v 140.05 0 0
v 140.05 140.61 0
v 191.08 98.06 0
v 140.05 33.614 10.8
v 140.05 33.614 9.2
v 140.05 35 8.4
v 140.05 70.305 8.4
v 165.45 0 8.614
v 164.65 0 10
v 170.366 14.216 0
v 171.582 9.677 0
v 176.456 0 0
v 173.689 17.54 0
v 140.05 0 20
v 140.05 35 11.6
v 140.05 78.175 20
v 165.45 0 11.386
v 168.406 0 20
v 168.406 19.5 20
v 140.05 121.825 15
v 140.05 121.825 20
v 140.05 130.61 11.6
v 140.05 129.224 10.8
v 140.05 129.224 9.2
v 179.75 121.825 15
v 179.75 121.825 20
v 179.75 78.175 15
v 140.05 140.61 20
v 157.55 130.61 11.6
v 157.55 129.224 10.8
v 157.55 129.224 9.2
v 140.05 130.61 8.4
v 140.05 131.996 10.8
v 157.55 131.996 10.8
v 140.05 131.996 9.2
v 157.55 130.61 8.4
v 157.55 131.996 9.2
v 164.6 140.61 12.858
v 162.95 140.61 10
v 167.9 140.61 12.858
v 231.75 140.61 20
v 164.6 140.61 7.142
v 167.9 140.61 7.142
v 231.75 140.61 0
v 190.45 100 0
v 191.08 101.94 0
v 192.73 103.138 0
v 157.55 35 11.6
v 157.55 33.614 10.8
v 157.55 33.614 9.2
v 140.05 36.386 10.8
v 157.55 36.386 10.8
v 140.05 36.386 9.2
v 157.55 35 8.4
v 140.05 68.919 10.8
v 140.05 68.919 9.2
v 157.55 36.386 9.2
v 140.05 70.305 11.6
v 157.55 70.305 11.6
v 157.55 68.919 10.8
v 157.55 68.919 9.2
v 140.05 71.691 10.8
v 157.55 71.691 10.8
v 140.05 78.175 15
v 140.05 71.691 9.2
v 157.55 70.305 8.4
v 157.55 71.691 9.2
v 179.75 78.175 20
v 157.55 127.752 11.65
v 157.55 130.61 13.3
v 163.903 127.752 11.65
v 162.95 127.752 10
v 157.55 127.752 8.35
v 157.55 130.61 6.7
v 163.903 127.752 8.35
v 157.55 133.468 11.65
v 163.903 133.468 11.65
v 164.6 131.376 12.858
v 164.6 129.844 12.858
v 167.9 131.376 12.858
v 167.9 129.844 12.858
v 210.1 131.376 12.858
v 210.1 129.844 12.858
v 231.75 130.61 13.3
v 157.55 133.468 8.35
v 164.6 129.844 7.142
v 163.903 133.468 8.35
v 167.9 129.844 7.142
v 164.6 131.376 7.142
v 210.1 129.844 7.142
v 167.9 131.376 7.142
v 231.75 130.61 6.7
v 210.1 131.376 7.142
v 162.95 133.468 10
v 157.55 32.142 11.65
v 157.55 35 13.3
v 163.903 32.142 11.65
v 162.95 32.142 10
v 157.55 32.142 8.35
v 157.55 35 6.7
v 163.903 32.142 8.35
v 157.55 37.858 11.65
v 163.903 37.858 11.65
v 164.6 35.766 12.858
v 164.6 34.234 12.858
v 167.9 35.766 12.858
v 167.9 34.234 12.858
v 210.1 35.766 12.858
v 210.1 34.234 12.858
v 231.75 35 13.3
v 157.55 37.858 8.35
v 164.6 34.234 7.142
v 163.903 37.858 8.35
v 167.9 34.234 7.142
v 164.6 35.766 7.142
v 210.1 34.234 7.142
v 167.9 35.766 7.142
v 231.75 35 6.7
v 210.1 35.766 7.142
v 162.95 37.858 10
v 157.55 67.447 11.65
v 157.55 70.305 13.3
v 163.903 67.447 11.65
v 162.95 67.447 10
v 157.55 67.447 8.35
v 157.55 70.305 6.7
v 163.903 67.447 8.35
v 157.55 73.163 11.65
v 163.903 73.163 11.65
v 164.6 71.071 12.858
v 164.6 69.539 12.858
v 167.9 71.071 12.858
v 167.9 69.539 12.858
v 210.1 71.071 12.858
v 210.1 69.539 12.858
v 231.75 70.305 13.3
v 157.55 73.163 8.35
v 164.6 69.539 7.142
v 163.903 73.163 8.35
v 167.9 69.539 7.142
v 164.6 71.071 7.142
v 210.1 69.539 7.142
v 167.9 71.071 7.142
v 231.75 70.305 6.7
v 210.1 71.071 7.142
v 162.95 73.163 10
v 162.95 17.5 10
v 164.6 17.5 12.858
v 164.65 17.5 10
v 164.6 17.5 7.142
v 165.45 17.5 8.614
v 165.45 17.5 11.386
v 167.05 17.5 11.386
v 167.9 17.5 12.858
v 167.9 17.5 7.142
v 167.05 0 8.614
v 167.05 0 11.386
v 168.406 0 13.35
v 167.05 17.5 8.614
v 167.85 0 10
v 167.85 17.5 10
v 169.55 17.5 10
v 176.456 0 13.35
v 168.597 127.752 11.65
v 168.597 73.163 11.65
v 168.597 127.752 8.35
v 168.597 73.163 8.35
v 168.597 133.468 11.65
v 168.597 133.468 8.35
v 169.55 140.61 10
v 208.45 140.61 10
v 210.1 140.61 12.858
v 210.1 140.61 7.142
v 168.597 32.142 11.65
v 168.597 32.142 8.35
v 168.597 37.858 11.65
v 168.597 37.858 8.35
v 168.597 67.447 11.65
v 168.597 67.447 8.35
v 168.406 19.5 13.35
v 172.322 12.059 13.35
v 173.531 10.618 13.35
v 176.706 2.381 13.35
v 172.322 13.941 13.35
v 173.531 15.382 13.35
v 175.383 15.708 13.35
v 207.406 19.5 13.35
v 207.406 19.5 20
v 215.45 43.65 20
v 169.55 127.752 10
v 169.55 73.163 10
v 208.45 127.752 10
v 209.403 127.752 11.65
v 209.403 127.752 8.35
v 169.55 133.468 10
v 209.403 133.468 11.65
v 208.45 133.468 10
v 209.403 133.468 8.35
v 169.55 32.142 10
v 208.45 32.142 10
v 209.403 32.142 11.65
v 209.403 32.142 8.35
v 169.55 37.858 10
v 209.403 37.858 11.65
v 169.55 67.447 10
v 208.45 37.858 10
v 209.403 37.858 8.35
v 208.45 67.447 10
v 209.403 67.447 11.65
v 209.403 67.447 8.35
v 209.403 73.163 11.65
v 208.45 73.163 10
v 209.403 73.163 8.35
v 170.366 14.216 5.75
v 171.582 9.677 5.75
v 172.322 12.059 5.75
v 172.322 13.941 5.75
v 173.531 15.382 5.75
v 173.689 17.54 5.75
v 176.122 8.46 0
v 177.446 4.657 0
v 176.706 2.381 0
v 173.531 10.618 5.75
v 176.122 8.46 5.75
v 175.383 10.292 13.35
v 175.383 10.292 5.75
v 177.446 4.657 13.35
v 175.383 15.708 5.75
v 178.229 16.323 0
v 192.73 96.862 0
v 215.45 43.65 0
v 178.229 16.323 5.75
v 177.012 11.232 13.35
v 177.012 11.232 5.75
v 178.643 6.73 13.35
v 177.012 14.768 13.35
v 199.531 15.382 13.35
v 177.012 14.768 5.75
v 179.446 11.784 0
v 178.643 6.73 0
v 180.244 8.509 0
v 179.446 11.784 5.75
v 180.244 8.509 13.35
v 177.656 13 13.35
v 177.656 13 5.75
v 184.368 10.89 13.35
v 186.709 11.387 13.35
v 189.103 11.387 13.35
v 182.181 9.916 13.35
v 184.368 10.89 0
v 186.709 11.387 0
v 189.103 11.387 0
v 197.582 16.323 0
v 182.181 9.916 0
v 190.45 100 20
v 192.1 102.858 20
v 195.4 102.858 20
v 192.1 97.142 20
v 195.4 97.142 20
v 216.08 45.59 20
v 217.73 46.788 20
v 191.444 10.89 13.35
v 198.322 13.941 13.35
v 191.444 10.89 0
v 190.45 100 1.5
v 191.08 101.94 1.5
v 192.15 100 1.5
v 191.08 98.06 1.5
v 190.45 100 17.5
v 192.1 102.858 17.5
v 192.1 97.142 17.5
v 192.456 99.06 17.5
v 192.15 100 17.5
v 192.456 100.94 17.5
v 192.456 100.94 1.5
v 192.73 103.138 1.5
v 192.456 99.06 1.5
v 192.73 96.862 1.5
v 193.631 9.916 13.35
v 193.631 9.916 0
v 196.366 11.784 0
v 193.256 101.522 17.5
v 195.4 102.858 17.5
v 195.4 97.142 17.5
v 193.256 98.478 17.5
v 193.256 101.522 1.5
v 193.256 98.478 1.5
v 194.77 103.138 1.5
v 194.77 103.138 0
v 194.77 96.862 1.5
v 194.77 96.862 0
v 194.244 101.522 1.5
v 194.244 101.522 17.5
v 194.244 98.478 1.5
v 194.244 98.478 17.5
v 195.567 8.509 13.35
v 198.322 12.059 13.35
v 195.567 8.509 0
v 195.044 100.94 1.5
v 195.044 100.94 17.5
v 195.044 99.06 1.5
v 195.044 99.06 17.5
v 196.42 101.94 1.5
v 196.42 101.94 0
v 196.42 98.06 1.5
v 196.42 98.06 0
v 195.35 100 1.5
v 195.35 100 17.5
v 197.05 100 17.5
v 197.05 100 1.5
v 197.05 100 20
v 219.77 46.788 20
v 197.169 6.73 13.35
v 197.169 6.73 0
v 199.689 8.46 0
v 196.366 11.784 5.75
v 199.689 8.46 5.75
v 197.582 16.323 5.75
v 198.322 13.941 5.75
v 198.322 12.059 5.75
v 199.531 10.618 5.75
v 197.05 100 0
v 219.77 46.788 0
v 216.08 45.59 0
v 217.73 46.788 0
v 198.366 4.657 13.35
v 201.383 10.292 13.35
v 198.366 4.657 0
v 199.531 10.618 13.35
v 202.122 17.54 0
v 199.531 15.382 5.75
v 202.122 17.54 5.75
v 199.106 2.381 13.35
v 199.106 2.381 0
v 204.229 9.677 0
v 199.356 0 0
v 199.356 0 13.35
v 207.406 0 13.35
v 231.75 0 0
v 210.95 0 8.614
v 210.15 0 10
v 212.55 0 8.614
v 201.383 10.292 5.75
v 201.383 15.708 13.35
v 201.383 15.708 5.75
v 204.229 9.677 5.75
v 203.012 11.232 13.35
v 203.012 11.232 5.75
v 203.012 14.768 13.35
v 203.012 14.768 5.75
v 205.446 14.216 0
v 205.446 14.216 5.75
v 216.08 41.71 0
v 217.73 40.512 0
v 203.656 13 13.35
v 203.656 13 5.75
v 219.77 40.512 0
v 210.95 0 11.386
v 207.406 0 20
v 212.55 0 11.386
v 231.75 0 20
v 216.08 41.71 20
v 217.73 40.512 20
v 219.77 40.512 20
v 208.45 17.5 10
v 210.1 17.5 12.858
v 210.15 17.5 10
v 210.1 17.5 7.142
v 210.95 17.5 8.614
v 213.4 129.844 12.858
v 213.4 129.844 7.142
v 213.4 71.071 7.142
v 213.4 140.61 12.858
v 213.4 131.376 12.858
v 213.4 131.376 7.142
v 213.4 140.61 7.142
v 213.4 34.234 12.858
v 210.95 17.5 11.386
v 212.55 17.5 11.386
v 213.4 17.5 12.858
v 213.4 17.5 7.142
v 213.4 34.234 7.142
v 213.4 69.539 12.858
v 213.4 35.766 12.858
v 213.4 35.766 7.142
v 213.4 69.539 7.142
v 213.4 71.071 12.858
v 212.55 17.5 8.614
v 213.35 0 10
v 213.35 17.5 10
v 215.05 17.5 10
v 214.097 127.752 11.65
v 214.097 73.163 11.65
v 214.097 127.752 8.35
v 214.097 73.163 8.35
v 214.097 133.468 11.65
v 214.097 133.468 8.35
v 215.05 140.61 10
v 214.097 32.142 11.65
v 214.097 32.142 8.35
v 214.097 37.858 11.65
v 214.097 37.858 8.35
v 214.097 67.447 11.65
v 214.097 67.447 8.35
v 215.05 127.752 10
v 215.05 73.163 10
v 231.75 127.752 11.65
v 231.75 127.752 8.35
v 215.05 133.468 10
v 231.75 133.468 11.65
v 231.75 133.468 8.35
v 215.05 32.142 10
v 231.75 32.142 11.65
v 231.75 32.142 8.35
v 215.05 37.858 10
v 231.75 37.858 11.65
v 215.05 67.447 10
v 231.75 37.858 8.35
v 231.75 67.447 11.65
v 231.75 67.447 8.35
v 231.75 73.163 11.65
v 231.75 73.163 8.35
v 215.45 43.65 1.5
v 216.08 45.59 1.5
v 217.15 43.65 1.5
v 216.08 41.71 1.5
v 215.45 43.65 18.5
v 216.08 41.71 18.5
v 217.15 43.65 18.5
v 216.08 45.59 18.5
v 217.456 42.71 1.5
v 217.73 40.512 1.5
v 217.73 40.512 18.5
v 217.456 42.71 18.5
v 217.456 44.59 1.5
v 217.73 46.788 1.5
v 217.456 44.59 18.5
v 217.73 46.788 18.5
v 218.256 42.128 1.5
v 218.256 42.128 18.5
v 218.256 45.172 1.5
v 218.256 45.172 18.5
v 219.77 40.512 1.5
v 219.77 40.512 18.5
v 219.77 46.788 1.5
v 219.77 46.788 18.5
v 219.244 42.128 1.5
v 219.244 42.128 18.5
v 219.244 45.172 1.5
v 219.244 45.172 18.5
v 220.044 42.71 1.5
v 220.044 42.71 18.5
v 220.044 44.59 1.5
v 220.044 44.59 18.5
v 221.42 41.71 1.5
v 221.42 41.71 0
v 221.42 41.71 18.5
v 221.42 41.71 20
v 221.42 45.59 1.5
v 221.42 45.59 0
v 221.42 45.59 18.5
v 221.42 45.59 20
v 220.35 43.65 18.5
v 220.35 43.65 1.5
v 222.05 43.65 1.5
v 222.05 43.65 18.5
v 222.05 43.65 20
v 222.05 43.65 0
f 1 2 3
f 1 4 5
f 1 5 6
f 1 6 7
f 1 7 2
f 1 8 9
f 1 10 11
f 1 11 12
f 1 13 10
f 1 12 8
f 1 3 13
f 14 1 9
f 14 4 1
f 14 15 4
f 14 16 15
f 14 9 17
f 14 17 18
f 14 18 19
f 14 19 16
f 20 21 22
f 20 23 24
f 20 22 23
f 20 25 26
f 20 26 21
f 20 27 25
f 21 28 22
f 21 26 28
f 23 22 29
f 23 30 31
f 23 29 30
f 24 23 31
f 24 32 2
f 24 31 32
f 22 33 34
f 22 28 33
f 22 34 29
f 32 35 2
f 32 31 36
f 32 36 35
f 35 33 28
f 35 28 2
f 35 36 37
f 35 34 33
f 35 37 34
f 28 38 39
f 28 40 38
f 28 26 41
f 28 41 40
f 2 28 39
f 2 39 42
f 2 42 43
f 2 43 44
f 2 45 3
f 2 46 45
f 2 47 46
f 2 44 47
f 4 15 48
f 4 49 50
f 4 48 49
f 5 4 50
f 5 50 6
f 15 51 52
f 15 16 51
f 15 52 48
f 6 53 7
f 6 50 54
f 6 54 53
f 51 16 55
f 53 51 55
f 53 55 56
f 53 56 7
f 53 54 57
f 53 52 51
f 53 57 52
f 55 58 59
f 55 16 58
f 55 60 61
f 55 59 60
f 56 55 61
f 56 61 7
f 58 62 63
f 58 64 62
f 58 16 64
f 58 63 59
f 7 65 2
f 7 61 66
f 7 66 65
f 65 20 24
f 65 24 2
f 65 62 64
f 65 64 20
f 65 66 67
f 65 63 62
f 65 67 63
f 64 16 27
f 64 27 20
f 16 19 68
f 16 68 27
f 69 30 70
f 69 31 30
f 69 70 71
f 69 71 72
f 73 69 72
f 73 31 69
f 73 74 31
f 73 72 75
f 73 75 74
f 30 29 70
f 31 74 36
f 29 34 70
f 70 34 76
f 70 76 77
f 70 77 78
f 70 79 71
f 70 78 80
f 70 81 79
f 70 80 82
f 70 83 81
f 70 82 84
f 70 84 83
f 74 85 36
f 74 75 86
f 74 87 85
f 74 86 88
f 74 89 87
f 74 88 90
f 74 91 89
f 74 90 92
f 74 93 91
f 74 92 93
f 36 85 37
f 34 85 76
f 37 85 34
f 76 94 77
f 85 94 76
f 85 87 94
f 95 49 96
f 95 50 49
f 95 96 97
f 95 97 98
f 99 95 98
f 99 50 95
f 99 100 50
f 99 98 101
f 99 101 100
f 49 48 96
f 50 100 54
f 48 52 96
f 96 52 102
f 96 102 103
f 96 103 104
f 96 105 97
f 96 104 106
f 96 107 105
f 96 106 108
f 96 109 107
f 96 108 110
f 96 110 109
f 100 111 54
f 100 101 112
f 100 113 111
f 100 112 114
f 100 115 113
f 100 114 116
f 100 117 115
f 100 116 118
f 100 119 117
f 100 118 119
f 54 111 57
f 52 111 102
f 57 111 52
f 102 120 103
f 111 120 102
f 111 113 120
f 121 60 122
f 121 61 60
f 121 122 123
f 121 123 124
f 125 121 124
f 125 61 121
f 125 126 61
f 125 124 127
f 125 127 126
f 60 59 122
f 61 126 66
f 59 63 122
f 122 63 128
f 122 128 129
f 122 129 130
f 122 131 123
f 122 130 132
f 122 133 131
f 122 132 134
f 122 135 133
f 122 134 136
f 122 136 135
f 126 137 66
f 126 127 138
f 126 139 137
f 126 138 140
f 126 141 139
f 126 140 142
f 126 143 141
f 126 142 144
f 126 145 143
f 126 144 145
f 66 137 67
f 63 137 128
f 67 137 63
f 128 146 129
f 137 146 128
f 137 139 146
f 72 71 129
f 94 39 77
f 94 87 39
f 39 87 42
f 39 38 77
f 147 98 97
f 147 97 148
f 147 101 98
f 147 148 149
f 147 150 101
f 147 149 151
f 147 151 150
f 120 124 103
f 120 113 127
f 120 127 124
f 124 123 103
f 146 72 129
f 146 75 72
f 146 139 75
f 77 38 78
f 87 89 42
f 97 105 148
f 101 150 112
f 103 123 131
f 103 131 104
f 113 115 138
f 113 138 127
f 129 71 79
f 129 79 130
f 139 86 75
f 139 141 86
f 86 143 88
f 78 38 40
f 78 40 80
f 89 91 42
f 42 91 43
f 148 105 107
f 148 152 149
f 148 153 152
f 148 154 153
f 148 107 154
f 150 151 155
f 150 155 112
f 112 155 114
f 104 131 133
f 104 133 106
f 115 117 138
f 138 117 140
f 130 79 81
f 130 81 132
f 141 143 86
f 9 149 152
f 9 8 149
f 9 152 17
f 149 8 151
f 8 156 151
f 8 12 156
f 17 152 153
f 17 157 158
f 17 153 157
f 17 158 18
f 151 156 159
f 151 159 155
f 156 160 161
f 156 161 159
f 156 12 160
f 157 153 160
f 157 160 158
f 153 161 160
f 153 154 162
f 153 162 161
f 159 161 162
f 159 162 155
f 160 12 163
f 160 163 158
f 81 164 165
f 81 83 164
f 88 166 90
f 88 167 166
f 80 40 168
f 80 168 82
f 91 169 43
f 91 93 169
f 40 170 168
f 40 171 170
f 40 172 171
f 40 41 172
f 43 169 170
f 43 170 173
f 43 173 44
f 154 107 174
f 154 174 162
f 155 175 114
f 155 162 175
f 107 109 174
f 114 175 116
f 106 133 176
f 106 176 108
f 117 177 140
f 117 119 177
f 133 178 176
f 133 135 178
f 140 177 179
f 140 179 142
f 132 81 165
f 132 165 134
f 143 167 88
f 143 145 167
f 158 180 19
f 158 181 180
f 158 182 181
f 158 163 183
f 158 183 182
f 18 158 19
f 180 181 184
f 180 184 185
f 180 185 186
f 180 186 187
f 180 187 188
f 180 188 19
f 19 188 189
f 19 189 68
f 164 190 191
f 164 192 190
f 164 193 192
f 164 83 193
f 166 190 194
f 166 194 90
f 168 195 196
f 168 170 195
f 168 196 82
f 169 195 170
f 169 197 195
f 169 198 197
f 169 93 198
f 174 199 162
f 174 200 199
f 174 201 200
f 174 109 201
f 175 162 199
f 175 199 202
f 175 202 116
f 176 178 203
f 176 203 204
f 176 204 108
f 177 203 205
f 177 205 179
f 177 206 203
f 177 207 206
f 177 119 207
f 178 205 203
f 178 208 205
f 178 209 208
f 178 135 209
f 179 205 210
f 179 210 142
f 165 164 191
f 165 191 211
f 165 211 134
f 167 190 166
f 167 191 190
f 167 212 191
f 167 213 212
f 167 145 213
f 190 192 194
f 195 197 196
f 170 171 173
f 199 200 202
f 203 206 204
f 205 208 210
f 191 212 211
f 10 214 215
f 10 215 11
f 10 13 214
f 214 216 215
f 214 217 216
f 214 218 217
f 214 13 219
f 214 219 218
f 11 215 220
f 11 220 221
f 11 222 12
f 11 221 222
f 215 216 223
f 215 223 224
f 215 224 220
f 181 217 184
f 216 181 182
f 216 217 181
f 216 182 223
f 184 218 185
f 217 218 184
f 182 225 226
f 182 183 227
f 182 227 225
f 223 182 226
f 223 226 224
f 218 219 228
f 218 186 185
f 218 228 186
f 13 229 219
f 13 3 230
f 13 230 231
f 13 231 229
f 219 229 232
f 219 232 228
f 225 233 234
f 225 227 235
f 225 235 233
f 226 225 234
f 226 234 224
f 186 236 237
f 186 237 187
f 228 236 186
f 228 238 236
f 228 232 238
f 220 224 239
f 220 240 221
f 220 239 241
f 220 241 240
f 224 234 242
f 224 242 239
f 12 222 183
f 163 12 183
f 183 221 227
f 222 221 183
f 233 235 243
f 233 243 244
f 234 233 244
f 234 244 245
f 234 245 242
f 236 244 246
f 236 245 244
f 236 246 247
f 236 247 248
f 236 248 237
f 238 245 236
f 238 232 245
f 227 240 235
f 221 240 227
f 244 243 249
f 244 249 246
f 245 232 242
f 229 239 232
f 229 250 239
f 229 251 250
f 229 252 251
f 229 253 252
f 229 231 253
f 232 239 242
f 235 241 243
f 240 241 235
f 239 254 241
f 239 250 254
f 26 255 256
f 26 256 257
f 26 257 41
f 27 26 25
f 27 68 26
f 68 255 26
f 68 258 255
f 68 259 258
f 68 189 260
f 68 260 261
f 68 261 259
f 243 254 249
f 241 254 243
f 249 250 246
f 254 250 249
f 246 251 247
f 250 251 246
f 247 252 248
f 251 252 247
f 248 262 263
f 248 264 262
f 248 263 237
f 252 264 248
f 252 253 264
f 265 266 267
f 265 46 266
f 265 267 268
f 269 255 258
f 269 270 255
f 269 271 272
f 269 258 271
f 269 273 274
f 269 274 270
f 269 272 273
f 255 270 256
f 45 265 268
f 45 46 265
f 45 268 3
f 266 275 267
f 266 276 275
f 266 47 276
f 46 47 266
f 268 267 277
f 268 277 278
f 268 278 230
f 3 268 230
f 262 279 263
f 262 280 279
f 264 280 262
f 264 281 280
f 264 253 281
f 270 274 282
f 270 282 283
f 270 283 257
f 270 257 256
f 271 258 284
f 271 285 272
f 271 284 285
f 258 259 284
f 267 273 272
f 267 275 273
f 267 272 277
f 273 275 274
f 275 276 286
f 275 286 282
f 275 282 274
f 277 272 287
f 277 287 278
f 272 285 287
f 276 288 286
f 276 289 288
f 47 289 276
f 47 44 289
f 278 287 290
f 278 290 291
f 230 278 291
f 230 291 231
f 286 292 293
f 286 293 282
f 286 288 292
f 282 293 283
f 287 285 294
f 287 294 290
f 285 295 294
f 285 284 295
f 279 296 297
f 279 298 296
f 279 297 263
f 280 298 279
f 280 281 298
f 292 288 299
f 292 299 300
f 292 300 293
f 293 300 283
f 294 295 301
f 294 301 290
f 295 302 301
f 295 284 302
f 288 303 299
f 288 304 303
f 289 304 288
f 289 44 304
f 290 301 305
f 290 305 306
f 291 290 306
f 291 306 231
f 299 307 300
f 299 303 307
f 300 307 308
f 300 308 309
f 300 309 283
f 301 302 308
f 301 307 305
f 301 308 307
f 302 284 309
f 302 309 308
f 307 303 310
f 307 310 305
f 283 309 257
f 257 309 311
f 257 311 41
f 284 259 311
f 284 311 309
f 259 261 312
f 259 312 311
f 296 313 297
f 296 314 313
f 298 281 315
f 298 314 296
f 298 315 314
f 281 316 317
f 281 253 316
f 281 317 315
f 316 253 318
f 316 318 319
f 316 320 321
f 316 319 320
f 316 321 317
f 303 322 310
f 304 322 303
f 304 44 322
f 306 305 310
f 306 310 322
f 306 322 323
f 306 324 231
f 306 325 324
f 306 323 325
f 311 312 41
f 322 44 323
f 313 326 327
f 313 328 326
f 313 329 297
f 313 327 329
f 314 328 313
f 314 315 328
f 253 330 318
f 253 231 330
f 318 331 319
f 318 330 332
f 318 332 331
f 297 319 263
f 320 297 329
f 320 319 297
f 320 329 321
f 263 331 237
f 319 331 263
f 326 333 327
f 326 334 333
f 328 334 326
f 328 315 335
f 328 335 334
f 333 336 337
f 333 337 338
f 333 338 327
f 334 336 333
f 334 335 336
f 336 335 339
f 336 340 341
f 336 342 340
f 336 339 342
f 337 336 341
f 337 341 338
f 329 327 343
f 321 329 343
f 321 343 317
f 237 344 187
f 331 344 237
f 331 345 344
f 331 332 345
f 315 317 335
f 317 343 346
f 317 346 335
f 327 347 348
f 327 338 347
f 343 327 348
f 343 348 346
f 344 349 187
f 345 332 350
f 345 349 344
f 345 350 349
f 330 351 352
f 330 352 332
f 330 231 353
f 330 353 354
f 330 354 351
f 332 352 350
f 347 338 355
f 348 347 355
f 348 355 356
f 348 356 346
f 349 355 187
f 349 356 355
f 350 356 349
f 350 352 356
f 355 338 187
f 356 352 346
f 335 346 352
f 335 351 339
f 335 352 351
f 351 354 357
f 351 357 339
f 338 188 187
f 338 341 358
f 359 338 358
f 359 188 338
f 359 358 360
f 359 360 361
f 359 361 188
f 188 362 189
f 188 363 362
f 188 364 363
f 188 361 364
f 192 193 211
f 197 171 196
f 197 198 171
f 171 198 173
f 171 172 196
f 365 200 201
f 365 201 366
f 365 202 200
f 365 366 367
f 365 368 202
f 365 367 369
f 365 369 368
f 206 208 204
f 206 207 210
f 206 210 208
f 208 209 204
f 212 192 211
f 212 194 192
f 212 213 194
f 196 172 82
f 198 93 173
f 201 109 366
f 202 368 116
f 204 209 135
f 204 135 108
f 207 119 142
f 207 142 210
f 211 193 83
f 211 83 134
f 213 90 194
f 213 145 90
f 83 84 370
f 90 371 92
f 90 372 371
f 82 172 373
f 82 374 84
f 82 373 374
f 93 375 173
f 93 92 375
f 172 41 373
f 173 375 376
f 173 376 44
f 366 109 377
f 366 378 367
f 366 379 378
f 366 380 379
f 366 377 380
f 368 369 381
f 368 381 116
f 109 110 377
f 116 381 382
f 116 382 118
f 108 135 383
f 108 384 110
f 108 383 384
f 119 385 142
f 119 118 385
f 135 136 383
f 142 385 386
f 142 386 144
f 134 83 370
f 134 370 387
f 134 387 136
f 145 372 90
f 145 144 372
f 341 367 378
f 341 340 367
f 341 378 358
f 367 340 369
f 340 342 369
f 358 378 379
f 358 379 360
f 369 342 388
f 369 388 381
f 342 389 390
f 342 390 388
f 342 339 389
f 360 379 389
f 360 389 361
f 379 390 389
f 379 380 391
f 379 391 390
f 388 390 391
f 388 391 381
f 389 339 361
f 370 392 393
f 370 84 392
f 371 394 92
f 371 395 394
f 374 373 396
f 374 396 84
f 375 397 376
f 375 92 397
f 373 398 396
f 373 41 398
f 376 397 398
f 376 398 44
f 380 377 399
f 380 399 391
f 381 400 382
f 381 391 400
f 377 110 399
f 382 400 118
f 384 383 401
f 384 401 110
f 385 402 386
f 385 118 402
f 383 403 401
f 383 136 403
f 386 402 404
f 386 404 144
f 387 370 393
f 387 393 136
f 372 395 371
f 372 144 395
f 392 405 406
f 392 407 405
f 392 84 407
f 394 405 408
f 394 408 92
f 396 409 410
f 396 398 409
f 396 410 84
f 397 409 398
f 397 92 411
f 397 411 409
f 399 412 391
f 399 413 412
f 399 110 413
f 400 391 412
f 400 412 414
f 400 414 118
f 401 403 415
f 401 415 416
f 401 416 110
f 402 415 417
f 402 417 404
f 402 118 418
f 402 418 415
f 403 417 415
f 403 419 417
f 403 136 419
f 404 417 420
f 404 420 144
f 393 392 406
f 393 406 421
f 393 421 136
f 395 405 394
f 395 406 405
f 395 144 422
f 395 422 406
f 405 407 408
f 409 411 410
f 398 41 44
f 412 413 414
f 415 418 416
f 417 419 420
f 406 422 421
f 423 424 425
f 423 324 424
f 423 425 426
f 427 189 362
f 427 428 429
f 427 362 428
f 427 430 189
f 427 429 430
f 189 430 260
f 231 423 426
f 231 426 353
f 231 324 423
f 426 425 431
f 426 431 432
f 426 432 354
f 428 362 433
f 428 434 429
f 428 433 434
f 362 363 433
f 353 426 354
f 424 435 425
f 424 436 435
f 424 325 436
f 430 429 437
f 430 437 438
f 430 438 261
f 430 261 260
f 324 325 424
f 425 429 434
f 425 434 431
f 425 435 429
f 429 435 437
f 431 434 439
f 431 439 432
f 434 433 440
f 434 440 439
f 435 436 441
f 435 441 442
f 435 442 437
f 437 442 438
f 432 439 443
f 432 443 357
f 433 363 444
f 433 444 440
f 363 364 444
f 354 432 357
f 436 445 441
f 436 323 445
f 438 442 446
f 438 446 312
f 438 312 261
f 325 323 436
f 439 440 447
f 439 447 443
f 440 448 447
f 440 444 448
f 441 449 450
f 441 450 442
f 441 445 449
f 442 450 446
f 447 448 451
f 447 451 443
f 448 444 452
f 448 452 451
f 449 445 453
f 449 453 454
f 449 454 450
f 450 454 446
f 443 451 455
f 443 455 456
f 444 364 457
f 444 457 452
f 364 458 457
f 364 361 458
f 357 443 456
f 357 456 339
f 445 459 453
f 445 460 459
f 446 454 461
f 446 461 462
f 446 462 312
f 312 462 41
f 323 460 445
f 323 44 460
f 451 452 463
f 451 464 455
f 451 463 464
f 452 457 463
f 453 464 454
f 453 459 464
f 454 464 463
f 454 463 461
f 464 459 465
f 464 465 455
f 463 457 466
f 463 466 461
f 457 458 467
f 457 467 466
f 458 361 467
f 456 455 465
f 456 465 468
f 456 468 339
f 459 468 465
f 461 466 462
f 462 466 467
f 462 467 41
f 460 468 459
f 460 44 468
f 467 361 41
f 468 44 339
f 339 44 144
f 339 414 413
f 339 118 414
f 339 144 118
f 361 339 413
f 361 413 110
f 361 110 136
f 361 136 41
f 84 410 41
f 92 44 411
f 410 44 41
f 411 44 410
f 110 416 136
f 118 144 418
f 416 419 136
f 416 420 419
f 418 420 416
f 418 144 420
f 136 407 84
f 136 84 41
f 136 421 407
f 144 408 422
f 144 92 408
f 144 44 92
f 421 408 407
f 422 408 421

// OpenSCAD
// file: ../888_1018.scad
include <../parameters.scad>
draft = true;

accumulator_plate_thickness = 20;
accumulator_plate_length = width_of_accumulator + accumulator_holder_width*3;
accumulator_plate_accumulator_axis_offset = 100; // how far from autogyro center pipe center of battery is.
accumulator_plate_move = -25; // posuv akumulatoru dozadu
accumulator_plate_width = accumulator_plate_accumulator_axis_offset + depth_of_accumulator;
accumulator_plate_bearing_sink = 6.4; // Jak moc bude zapuštěno ložisko pro připevnění na střechu auta.
//  cover_pilon_position
module 888_1018(draft){
  posun = move_of_accumulator + accumulator_holder_width/2 + accumulator_holder_thickness/2 + height_666_1026 + global_clearance/2;

rotate([0, 180, 180])
  translate([posun, 0, 0])
    difference(){

      hull(){
        translate([-accumulator_plate_length/2, -accumulator_plate_width, 0])
            cube([accumulator_plate_length, accumulator_plate_width, accumulator_plate_thickness]);
        translate([-accumulator_plate_length/2 + accumulator_plate_move, -accumulator_plate_width, 0])
            cube([accumulator_plate_length, accumulator_plate_width, accumulator_plate_thickness]);
      }

      #union (){
      //šrouby pro připevnění k letadlu
          translate([-width_of_accumulator/2 - accumulator_holder_width/2 - accumulator_holder_thickness/2, -height_of_accumulator, 0])
              cylinder(h = 100, r = M3_screw_diameter/2, $fn = draft ? 10 : 20, center = true);

          translate([width_of_accumulator/2 + accumulator_holder_width/2 + accumulator_holder_thickness/2, -height_of_accumulator, 0])
              cylinder(h = 100, r = M3_screw_diameter/2, $fn = draft ? 10 : 20, center = true);

      //Zapuštění hlav šroubů pro připevnění k letadlu
          translate([-width_of_accumulator/2 - accumulator_holder_width/2 - accumulator_holder_thickness/2, -height_of_accumulator, accumulator_plate_thickness])
              cylinder(h = M3_screw_head_height, d = M3_nut_diameter, $fn = draft ? 10 : 20, center = true);

          translate([width_of_accumulator/2 + accumulator_holder_width/2 + accumulator_holder_thickness/2, -height_of_accumulator, accumulator_plate_thickness])
              cylinder(h = M3_screw_head_height, d = M3_nut_diameter, $fn = draft ? 10 : 20, center = true);

      // odecteni kostky, v miste, kde je pripevnene kolecko
          translate([height_666_1026 - move_of_accumulator - width_of_accumulator/2 - 5, -5 - height_666_1004/2, - hull_y_size/2])
                 cube([coupling_width_666_1004 + 10, height_666_1004 + 10, hull_y_size]);
      }

      translate([accumulator_plate_move, 0, 0])
      union (){
        //akumulátor
          translate([-width_of_accumulator/2, -accumulator_plate_accumulator_axis_offset-height_of_accumulator/2, accumulator_plate_thickness - sink_of_accumulator])
              cube([width_of_accumulator, height_of_accumulator, depth_of_accumulator]);

        //šrouby pro připevnění akumulátorů
          translate([width_of_accumulator/2 + accumulator_holder_width/2 + accumulator_holder_thickness/2, -accumulator_plate_accumulator_axis_offset, 0])
              cylinder(h = 100, r = M3_screw_diameter/2, $fn = draft ? 10 : 20, center = true);

          translate([- width_of_accumulator/2 - accumulator_holder_width/2 - accumulator_holder_thickness/2, -accumulator_plate_accumulator_axis_offset, 0])
              cylinder(h = 100, r = M3_screw_diameter/2, $fn = draft ? 10 : 20, center = true);


          //díry pro zapuštění hlaviček šroubů
          translate([width_of_accumulator/2 + accumulator_holder_width/2 + accumulator_holder_thickness/2 - accumulator_plate_move, -height_of_accumulator, 0])
              cylinder(h = M3_screw_head_height, d = M3_nut_diameter, $fn = draft ? 10 : 20, center = true);

          translate([-width_of_accumulator/2 - accumulator_holder_width/2 - accumulator_holder_thickness/2 - accumulator_plate_move, -height_of_accumulator, 0])
              cylinder(h = M3_screw_head_height, d = M3_nut_diameter, $fn = draft ? 10 : 20, center = true);

          translate([width_of_accumulator/2 + accumulator_holder_width/2 + accumulator_holder_thickness/2, -accumulator_plate_accumulator_axis_offset, 0])
              cylinder(h = M3_screw_head_height, d = M3_nut_diameter, $fn = draft ? 10 : 20, center = true);

          translate([-width_of_accumulator/2 - accumulator_holder_width/2 - accumulator_holder_thickness/2, -accumulator_plate_accumulator_axis_offset, 0])
              cylinder(h = M3_screw_head_height, d = M3_nut_diameter, $fn = draft ? 10 : 20, center = true);

      // díry pro matky pro sroub drzici obruce pres baterie..
          translate([width_of_accumulator/2 + accumulator_holder_width/2 + accumulator_holder_thickness/2, -accumulator_plate_accumulator_axis_offset, accumulator_plate_thickness])
              cylinder(h = 5, d = M3_nut_diameter, $fn = 6, center = true);

          translate([-width_of_accumulator/2 - accumulator_holder_width/2 - accumulator_holder_thickness/2, -accumulator_plate_accumulator_axis_offset, accumulator_plate_thickness])
              cylinder(h = 5, d = M3_nut_diameter, $fn = 6, center = true);


        }

        // Srouby pro sesroubovani skrz....

        for (i=[accumulator_plate_length/2 - 20, accumulator_plate_length/7, -accumulator_plate_length/6, - accumulator_plate_length/2 + accumulator_plate_move + 10]) {
          translate([i, 0, accumulator_plate_thickness/2])
            union(){
              rotate([90,0,0])
                cylinder(d= M3_screw_diameter, h= 200);

            translate([0, -35/2, 0])
              rotate([90,0,0])
                cylinder(d= M3_nut_diameter, h= 200, $fn= 6);
            }
        }

        for (i=[-35, -accumulator_plate_width/2, -accumulator_plate_width+10]) {
          translate([0, i, accumulator_plate_thickness/2])
            union(){
              translate([-150, 0, 0])
                rotate([0,90,0])
                  cylinder(d= M3_screw_diameter, h= 300);

              translate([35/2, 0, 0])
                rotate([0,90,0])
                  cylinder(d= M3_nut_diameter, h= 200, $fn= 6);

              translate([-35/2 - 200, 0, 0])
                rotate([0,90,0])
                  cylinder(d= M3_nut_diameter, h= 200, $fn= 6);
            }
        }


    // pro přidělání příruby ložiska
    translate([-posun+center_of_gravity_position[0],center_of_gravity_position[1],-global_clearance/2]){
      cylinder(d = bearing_efsm_10_db+1, h=accumulator_plate_thickness + global_clearance);

      translate([- bearing_efsm_10_h / 2, - bearing_efsm_10_h / 2, accumulator_plate_thickness-accumulator_plate_bearing_sink])
        cube(bearing_efsm_10_h);

      for (i=[[1, 1], [-1, 1], [1, -1], [-1, -1]]) {
        translate([i[0]*bearing_efsm_10_m/2, i[1]*bearing_efsm_10_m/2, 0]){
          cylinder(d = bearing_efsm_10_n, h=accumulator_plate_thickness + global_clearance);
          rotate([0,0,-i[0]*15])
            cylinder(d = M5_nut_diameter, h= M5_head_height+1, $fn=6);
        }
      }
    }

    }
}


888_1018(draft);
mirror([0,1,0])
    888_1018(draft);
// main file
include <../../parameters.scad>
use <../888_1018.scad>

draft = false;

posuv = move_of_accumulator + accumulator_holder_width/2 + accumulator_holder_thickness/2 + height_666_1026 + global_clearance/2;

mirror([0,1,0])
  difference(){
    rotate([180, 0, 0])
      888_1018(1, draft);
    translate([-500+posuv, -500+ global_clearance, -global_clearance])
      cube(500);
  }
